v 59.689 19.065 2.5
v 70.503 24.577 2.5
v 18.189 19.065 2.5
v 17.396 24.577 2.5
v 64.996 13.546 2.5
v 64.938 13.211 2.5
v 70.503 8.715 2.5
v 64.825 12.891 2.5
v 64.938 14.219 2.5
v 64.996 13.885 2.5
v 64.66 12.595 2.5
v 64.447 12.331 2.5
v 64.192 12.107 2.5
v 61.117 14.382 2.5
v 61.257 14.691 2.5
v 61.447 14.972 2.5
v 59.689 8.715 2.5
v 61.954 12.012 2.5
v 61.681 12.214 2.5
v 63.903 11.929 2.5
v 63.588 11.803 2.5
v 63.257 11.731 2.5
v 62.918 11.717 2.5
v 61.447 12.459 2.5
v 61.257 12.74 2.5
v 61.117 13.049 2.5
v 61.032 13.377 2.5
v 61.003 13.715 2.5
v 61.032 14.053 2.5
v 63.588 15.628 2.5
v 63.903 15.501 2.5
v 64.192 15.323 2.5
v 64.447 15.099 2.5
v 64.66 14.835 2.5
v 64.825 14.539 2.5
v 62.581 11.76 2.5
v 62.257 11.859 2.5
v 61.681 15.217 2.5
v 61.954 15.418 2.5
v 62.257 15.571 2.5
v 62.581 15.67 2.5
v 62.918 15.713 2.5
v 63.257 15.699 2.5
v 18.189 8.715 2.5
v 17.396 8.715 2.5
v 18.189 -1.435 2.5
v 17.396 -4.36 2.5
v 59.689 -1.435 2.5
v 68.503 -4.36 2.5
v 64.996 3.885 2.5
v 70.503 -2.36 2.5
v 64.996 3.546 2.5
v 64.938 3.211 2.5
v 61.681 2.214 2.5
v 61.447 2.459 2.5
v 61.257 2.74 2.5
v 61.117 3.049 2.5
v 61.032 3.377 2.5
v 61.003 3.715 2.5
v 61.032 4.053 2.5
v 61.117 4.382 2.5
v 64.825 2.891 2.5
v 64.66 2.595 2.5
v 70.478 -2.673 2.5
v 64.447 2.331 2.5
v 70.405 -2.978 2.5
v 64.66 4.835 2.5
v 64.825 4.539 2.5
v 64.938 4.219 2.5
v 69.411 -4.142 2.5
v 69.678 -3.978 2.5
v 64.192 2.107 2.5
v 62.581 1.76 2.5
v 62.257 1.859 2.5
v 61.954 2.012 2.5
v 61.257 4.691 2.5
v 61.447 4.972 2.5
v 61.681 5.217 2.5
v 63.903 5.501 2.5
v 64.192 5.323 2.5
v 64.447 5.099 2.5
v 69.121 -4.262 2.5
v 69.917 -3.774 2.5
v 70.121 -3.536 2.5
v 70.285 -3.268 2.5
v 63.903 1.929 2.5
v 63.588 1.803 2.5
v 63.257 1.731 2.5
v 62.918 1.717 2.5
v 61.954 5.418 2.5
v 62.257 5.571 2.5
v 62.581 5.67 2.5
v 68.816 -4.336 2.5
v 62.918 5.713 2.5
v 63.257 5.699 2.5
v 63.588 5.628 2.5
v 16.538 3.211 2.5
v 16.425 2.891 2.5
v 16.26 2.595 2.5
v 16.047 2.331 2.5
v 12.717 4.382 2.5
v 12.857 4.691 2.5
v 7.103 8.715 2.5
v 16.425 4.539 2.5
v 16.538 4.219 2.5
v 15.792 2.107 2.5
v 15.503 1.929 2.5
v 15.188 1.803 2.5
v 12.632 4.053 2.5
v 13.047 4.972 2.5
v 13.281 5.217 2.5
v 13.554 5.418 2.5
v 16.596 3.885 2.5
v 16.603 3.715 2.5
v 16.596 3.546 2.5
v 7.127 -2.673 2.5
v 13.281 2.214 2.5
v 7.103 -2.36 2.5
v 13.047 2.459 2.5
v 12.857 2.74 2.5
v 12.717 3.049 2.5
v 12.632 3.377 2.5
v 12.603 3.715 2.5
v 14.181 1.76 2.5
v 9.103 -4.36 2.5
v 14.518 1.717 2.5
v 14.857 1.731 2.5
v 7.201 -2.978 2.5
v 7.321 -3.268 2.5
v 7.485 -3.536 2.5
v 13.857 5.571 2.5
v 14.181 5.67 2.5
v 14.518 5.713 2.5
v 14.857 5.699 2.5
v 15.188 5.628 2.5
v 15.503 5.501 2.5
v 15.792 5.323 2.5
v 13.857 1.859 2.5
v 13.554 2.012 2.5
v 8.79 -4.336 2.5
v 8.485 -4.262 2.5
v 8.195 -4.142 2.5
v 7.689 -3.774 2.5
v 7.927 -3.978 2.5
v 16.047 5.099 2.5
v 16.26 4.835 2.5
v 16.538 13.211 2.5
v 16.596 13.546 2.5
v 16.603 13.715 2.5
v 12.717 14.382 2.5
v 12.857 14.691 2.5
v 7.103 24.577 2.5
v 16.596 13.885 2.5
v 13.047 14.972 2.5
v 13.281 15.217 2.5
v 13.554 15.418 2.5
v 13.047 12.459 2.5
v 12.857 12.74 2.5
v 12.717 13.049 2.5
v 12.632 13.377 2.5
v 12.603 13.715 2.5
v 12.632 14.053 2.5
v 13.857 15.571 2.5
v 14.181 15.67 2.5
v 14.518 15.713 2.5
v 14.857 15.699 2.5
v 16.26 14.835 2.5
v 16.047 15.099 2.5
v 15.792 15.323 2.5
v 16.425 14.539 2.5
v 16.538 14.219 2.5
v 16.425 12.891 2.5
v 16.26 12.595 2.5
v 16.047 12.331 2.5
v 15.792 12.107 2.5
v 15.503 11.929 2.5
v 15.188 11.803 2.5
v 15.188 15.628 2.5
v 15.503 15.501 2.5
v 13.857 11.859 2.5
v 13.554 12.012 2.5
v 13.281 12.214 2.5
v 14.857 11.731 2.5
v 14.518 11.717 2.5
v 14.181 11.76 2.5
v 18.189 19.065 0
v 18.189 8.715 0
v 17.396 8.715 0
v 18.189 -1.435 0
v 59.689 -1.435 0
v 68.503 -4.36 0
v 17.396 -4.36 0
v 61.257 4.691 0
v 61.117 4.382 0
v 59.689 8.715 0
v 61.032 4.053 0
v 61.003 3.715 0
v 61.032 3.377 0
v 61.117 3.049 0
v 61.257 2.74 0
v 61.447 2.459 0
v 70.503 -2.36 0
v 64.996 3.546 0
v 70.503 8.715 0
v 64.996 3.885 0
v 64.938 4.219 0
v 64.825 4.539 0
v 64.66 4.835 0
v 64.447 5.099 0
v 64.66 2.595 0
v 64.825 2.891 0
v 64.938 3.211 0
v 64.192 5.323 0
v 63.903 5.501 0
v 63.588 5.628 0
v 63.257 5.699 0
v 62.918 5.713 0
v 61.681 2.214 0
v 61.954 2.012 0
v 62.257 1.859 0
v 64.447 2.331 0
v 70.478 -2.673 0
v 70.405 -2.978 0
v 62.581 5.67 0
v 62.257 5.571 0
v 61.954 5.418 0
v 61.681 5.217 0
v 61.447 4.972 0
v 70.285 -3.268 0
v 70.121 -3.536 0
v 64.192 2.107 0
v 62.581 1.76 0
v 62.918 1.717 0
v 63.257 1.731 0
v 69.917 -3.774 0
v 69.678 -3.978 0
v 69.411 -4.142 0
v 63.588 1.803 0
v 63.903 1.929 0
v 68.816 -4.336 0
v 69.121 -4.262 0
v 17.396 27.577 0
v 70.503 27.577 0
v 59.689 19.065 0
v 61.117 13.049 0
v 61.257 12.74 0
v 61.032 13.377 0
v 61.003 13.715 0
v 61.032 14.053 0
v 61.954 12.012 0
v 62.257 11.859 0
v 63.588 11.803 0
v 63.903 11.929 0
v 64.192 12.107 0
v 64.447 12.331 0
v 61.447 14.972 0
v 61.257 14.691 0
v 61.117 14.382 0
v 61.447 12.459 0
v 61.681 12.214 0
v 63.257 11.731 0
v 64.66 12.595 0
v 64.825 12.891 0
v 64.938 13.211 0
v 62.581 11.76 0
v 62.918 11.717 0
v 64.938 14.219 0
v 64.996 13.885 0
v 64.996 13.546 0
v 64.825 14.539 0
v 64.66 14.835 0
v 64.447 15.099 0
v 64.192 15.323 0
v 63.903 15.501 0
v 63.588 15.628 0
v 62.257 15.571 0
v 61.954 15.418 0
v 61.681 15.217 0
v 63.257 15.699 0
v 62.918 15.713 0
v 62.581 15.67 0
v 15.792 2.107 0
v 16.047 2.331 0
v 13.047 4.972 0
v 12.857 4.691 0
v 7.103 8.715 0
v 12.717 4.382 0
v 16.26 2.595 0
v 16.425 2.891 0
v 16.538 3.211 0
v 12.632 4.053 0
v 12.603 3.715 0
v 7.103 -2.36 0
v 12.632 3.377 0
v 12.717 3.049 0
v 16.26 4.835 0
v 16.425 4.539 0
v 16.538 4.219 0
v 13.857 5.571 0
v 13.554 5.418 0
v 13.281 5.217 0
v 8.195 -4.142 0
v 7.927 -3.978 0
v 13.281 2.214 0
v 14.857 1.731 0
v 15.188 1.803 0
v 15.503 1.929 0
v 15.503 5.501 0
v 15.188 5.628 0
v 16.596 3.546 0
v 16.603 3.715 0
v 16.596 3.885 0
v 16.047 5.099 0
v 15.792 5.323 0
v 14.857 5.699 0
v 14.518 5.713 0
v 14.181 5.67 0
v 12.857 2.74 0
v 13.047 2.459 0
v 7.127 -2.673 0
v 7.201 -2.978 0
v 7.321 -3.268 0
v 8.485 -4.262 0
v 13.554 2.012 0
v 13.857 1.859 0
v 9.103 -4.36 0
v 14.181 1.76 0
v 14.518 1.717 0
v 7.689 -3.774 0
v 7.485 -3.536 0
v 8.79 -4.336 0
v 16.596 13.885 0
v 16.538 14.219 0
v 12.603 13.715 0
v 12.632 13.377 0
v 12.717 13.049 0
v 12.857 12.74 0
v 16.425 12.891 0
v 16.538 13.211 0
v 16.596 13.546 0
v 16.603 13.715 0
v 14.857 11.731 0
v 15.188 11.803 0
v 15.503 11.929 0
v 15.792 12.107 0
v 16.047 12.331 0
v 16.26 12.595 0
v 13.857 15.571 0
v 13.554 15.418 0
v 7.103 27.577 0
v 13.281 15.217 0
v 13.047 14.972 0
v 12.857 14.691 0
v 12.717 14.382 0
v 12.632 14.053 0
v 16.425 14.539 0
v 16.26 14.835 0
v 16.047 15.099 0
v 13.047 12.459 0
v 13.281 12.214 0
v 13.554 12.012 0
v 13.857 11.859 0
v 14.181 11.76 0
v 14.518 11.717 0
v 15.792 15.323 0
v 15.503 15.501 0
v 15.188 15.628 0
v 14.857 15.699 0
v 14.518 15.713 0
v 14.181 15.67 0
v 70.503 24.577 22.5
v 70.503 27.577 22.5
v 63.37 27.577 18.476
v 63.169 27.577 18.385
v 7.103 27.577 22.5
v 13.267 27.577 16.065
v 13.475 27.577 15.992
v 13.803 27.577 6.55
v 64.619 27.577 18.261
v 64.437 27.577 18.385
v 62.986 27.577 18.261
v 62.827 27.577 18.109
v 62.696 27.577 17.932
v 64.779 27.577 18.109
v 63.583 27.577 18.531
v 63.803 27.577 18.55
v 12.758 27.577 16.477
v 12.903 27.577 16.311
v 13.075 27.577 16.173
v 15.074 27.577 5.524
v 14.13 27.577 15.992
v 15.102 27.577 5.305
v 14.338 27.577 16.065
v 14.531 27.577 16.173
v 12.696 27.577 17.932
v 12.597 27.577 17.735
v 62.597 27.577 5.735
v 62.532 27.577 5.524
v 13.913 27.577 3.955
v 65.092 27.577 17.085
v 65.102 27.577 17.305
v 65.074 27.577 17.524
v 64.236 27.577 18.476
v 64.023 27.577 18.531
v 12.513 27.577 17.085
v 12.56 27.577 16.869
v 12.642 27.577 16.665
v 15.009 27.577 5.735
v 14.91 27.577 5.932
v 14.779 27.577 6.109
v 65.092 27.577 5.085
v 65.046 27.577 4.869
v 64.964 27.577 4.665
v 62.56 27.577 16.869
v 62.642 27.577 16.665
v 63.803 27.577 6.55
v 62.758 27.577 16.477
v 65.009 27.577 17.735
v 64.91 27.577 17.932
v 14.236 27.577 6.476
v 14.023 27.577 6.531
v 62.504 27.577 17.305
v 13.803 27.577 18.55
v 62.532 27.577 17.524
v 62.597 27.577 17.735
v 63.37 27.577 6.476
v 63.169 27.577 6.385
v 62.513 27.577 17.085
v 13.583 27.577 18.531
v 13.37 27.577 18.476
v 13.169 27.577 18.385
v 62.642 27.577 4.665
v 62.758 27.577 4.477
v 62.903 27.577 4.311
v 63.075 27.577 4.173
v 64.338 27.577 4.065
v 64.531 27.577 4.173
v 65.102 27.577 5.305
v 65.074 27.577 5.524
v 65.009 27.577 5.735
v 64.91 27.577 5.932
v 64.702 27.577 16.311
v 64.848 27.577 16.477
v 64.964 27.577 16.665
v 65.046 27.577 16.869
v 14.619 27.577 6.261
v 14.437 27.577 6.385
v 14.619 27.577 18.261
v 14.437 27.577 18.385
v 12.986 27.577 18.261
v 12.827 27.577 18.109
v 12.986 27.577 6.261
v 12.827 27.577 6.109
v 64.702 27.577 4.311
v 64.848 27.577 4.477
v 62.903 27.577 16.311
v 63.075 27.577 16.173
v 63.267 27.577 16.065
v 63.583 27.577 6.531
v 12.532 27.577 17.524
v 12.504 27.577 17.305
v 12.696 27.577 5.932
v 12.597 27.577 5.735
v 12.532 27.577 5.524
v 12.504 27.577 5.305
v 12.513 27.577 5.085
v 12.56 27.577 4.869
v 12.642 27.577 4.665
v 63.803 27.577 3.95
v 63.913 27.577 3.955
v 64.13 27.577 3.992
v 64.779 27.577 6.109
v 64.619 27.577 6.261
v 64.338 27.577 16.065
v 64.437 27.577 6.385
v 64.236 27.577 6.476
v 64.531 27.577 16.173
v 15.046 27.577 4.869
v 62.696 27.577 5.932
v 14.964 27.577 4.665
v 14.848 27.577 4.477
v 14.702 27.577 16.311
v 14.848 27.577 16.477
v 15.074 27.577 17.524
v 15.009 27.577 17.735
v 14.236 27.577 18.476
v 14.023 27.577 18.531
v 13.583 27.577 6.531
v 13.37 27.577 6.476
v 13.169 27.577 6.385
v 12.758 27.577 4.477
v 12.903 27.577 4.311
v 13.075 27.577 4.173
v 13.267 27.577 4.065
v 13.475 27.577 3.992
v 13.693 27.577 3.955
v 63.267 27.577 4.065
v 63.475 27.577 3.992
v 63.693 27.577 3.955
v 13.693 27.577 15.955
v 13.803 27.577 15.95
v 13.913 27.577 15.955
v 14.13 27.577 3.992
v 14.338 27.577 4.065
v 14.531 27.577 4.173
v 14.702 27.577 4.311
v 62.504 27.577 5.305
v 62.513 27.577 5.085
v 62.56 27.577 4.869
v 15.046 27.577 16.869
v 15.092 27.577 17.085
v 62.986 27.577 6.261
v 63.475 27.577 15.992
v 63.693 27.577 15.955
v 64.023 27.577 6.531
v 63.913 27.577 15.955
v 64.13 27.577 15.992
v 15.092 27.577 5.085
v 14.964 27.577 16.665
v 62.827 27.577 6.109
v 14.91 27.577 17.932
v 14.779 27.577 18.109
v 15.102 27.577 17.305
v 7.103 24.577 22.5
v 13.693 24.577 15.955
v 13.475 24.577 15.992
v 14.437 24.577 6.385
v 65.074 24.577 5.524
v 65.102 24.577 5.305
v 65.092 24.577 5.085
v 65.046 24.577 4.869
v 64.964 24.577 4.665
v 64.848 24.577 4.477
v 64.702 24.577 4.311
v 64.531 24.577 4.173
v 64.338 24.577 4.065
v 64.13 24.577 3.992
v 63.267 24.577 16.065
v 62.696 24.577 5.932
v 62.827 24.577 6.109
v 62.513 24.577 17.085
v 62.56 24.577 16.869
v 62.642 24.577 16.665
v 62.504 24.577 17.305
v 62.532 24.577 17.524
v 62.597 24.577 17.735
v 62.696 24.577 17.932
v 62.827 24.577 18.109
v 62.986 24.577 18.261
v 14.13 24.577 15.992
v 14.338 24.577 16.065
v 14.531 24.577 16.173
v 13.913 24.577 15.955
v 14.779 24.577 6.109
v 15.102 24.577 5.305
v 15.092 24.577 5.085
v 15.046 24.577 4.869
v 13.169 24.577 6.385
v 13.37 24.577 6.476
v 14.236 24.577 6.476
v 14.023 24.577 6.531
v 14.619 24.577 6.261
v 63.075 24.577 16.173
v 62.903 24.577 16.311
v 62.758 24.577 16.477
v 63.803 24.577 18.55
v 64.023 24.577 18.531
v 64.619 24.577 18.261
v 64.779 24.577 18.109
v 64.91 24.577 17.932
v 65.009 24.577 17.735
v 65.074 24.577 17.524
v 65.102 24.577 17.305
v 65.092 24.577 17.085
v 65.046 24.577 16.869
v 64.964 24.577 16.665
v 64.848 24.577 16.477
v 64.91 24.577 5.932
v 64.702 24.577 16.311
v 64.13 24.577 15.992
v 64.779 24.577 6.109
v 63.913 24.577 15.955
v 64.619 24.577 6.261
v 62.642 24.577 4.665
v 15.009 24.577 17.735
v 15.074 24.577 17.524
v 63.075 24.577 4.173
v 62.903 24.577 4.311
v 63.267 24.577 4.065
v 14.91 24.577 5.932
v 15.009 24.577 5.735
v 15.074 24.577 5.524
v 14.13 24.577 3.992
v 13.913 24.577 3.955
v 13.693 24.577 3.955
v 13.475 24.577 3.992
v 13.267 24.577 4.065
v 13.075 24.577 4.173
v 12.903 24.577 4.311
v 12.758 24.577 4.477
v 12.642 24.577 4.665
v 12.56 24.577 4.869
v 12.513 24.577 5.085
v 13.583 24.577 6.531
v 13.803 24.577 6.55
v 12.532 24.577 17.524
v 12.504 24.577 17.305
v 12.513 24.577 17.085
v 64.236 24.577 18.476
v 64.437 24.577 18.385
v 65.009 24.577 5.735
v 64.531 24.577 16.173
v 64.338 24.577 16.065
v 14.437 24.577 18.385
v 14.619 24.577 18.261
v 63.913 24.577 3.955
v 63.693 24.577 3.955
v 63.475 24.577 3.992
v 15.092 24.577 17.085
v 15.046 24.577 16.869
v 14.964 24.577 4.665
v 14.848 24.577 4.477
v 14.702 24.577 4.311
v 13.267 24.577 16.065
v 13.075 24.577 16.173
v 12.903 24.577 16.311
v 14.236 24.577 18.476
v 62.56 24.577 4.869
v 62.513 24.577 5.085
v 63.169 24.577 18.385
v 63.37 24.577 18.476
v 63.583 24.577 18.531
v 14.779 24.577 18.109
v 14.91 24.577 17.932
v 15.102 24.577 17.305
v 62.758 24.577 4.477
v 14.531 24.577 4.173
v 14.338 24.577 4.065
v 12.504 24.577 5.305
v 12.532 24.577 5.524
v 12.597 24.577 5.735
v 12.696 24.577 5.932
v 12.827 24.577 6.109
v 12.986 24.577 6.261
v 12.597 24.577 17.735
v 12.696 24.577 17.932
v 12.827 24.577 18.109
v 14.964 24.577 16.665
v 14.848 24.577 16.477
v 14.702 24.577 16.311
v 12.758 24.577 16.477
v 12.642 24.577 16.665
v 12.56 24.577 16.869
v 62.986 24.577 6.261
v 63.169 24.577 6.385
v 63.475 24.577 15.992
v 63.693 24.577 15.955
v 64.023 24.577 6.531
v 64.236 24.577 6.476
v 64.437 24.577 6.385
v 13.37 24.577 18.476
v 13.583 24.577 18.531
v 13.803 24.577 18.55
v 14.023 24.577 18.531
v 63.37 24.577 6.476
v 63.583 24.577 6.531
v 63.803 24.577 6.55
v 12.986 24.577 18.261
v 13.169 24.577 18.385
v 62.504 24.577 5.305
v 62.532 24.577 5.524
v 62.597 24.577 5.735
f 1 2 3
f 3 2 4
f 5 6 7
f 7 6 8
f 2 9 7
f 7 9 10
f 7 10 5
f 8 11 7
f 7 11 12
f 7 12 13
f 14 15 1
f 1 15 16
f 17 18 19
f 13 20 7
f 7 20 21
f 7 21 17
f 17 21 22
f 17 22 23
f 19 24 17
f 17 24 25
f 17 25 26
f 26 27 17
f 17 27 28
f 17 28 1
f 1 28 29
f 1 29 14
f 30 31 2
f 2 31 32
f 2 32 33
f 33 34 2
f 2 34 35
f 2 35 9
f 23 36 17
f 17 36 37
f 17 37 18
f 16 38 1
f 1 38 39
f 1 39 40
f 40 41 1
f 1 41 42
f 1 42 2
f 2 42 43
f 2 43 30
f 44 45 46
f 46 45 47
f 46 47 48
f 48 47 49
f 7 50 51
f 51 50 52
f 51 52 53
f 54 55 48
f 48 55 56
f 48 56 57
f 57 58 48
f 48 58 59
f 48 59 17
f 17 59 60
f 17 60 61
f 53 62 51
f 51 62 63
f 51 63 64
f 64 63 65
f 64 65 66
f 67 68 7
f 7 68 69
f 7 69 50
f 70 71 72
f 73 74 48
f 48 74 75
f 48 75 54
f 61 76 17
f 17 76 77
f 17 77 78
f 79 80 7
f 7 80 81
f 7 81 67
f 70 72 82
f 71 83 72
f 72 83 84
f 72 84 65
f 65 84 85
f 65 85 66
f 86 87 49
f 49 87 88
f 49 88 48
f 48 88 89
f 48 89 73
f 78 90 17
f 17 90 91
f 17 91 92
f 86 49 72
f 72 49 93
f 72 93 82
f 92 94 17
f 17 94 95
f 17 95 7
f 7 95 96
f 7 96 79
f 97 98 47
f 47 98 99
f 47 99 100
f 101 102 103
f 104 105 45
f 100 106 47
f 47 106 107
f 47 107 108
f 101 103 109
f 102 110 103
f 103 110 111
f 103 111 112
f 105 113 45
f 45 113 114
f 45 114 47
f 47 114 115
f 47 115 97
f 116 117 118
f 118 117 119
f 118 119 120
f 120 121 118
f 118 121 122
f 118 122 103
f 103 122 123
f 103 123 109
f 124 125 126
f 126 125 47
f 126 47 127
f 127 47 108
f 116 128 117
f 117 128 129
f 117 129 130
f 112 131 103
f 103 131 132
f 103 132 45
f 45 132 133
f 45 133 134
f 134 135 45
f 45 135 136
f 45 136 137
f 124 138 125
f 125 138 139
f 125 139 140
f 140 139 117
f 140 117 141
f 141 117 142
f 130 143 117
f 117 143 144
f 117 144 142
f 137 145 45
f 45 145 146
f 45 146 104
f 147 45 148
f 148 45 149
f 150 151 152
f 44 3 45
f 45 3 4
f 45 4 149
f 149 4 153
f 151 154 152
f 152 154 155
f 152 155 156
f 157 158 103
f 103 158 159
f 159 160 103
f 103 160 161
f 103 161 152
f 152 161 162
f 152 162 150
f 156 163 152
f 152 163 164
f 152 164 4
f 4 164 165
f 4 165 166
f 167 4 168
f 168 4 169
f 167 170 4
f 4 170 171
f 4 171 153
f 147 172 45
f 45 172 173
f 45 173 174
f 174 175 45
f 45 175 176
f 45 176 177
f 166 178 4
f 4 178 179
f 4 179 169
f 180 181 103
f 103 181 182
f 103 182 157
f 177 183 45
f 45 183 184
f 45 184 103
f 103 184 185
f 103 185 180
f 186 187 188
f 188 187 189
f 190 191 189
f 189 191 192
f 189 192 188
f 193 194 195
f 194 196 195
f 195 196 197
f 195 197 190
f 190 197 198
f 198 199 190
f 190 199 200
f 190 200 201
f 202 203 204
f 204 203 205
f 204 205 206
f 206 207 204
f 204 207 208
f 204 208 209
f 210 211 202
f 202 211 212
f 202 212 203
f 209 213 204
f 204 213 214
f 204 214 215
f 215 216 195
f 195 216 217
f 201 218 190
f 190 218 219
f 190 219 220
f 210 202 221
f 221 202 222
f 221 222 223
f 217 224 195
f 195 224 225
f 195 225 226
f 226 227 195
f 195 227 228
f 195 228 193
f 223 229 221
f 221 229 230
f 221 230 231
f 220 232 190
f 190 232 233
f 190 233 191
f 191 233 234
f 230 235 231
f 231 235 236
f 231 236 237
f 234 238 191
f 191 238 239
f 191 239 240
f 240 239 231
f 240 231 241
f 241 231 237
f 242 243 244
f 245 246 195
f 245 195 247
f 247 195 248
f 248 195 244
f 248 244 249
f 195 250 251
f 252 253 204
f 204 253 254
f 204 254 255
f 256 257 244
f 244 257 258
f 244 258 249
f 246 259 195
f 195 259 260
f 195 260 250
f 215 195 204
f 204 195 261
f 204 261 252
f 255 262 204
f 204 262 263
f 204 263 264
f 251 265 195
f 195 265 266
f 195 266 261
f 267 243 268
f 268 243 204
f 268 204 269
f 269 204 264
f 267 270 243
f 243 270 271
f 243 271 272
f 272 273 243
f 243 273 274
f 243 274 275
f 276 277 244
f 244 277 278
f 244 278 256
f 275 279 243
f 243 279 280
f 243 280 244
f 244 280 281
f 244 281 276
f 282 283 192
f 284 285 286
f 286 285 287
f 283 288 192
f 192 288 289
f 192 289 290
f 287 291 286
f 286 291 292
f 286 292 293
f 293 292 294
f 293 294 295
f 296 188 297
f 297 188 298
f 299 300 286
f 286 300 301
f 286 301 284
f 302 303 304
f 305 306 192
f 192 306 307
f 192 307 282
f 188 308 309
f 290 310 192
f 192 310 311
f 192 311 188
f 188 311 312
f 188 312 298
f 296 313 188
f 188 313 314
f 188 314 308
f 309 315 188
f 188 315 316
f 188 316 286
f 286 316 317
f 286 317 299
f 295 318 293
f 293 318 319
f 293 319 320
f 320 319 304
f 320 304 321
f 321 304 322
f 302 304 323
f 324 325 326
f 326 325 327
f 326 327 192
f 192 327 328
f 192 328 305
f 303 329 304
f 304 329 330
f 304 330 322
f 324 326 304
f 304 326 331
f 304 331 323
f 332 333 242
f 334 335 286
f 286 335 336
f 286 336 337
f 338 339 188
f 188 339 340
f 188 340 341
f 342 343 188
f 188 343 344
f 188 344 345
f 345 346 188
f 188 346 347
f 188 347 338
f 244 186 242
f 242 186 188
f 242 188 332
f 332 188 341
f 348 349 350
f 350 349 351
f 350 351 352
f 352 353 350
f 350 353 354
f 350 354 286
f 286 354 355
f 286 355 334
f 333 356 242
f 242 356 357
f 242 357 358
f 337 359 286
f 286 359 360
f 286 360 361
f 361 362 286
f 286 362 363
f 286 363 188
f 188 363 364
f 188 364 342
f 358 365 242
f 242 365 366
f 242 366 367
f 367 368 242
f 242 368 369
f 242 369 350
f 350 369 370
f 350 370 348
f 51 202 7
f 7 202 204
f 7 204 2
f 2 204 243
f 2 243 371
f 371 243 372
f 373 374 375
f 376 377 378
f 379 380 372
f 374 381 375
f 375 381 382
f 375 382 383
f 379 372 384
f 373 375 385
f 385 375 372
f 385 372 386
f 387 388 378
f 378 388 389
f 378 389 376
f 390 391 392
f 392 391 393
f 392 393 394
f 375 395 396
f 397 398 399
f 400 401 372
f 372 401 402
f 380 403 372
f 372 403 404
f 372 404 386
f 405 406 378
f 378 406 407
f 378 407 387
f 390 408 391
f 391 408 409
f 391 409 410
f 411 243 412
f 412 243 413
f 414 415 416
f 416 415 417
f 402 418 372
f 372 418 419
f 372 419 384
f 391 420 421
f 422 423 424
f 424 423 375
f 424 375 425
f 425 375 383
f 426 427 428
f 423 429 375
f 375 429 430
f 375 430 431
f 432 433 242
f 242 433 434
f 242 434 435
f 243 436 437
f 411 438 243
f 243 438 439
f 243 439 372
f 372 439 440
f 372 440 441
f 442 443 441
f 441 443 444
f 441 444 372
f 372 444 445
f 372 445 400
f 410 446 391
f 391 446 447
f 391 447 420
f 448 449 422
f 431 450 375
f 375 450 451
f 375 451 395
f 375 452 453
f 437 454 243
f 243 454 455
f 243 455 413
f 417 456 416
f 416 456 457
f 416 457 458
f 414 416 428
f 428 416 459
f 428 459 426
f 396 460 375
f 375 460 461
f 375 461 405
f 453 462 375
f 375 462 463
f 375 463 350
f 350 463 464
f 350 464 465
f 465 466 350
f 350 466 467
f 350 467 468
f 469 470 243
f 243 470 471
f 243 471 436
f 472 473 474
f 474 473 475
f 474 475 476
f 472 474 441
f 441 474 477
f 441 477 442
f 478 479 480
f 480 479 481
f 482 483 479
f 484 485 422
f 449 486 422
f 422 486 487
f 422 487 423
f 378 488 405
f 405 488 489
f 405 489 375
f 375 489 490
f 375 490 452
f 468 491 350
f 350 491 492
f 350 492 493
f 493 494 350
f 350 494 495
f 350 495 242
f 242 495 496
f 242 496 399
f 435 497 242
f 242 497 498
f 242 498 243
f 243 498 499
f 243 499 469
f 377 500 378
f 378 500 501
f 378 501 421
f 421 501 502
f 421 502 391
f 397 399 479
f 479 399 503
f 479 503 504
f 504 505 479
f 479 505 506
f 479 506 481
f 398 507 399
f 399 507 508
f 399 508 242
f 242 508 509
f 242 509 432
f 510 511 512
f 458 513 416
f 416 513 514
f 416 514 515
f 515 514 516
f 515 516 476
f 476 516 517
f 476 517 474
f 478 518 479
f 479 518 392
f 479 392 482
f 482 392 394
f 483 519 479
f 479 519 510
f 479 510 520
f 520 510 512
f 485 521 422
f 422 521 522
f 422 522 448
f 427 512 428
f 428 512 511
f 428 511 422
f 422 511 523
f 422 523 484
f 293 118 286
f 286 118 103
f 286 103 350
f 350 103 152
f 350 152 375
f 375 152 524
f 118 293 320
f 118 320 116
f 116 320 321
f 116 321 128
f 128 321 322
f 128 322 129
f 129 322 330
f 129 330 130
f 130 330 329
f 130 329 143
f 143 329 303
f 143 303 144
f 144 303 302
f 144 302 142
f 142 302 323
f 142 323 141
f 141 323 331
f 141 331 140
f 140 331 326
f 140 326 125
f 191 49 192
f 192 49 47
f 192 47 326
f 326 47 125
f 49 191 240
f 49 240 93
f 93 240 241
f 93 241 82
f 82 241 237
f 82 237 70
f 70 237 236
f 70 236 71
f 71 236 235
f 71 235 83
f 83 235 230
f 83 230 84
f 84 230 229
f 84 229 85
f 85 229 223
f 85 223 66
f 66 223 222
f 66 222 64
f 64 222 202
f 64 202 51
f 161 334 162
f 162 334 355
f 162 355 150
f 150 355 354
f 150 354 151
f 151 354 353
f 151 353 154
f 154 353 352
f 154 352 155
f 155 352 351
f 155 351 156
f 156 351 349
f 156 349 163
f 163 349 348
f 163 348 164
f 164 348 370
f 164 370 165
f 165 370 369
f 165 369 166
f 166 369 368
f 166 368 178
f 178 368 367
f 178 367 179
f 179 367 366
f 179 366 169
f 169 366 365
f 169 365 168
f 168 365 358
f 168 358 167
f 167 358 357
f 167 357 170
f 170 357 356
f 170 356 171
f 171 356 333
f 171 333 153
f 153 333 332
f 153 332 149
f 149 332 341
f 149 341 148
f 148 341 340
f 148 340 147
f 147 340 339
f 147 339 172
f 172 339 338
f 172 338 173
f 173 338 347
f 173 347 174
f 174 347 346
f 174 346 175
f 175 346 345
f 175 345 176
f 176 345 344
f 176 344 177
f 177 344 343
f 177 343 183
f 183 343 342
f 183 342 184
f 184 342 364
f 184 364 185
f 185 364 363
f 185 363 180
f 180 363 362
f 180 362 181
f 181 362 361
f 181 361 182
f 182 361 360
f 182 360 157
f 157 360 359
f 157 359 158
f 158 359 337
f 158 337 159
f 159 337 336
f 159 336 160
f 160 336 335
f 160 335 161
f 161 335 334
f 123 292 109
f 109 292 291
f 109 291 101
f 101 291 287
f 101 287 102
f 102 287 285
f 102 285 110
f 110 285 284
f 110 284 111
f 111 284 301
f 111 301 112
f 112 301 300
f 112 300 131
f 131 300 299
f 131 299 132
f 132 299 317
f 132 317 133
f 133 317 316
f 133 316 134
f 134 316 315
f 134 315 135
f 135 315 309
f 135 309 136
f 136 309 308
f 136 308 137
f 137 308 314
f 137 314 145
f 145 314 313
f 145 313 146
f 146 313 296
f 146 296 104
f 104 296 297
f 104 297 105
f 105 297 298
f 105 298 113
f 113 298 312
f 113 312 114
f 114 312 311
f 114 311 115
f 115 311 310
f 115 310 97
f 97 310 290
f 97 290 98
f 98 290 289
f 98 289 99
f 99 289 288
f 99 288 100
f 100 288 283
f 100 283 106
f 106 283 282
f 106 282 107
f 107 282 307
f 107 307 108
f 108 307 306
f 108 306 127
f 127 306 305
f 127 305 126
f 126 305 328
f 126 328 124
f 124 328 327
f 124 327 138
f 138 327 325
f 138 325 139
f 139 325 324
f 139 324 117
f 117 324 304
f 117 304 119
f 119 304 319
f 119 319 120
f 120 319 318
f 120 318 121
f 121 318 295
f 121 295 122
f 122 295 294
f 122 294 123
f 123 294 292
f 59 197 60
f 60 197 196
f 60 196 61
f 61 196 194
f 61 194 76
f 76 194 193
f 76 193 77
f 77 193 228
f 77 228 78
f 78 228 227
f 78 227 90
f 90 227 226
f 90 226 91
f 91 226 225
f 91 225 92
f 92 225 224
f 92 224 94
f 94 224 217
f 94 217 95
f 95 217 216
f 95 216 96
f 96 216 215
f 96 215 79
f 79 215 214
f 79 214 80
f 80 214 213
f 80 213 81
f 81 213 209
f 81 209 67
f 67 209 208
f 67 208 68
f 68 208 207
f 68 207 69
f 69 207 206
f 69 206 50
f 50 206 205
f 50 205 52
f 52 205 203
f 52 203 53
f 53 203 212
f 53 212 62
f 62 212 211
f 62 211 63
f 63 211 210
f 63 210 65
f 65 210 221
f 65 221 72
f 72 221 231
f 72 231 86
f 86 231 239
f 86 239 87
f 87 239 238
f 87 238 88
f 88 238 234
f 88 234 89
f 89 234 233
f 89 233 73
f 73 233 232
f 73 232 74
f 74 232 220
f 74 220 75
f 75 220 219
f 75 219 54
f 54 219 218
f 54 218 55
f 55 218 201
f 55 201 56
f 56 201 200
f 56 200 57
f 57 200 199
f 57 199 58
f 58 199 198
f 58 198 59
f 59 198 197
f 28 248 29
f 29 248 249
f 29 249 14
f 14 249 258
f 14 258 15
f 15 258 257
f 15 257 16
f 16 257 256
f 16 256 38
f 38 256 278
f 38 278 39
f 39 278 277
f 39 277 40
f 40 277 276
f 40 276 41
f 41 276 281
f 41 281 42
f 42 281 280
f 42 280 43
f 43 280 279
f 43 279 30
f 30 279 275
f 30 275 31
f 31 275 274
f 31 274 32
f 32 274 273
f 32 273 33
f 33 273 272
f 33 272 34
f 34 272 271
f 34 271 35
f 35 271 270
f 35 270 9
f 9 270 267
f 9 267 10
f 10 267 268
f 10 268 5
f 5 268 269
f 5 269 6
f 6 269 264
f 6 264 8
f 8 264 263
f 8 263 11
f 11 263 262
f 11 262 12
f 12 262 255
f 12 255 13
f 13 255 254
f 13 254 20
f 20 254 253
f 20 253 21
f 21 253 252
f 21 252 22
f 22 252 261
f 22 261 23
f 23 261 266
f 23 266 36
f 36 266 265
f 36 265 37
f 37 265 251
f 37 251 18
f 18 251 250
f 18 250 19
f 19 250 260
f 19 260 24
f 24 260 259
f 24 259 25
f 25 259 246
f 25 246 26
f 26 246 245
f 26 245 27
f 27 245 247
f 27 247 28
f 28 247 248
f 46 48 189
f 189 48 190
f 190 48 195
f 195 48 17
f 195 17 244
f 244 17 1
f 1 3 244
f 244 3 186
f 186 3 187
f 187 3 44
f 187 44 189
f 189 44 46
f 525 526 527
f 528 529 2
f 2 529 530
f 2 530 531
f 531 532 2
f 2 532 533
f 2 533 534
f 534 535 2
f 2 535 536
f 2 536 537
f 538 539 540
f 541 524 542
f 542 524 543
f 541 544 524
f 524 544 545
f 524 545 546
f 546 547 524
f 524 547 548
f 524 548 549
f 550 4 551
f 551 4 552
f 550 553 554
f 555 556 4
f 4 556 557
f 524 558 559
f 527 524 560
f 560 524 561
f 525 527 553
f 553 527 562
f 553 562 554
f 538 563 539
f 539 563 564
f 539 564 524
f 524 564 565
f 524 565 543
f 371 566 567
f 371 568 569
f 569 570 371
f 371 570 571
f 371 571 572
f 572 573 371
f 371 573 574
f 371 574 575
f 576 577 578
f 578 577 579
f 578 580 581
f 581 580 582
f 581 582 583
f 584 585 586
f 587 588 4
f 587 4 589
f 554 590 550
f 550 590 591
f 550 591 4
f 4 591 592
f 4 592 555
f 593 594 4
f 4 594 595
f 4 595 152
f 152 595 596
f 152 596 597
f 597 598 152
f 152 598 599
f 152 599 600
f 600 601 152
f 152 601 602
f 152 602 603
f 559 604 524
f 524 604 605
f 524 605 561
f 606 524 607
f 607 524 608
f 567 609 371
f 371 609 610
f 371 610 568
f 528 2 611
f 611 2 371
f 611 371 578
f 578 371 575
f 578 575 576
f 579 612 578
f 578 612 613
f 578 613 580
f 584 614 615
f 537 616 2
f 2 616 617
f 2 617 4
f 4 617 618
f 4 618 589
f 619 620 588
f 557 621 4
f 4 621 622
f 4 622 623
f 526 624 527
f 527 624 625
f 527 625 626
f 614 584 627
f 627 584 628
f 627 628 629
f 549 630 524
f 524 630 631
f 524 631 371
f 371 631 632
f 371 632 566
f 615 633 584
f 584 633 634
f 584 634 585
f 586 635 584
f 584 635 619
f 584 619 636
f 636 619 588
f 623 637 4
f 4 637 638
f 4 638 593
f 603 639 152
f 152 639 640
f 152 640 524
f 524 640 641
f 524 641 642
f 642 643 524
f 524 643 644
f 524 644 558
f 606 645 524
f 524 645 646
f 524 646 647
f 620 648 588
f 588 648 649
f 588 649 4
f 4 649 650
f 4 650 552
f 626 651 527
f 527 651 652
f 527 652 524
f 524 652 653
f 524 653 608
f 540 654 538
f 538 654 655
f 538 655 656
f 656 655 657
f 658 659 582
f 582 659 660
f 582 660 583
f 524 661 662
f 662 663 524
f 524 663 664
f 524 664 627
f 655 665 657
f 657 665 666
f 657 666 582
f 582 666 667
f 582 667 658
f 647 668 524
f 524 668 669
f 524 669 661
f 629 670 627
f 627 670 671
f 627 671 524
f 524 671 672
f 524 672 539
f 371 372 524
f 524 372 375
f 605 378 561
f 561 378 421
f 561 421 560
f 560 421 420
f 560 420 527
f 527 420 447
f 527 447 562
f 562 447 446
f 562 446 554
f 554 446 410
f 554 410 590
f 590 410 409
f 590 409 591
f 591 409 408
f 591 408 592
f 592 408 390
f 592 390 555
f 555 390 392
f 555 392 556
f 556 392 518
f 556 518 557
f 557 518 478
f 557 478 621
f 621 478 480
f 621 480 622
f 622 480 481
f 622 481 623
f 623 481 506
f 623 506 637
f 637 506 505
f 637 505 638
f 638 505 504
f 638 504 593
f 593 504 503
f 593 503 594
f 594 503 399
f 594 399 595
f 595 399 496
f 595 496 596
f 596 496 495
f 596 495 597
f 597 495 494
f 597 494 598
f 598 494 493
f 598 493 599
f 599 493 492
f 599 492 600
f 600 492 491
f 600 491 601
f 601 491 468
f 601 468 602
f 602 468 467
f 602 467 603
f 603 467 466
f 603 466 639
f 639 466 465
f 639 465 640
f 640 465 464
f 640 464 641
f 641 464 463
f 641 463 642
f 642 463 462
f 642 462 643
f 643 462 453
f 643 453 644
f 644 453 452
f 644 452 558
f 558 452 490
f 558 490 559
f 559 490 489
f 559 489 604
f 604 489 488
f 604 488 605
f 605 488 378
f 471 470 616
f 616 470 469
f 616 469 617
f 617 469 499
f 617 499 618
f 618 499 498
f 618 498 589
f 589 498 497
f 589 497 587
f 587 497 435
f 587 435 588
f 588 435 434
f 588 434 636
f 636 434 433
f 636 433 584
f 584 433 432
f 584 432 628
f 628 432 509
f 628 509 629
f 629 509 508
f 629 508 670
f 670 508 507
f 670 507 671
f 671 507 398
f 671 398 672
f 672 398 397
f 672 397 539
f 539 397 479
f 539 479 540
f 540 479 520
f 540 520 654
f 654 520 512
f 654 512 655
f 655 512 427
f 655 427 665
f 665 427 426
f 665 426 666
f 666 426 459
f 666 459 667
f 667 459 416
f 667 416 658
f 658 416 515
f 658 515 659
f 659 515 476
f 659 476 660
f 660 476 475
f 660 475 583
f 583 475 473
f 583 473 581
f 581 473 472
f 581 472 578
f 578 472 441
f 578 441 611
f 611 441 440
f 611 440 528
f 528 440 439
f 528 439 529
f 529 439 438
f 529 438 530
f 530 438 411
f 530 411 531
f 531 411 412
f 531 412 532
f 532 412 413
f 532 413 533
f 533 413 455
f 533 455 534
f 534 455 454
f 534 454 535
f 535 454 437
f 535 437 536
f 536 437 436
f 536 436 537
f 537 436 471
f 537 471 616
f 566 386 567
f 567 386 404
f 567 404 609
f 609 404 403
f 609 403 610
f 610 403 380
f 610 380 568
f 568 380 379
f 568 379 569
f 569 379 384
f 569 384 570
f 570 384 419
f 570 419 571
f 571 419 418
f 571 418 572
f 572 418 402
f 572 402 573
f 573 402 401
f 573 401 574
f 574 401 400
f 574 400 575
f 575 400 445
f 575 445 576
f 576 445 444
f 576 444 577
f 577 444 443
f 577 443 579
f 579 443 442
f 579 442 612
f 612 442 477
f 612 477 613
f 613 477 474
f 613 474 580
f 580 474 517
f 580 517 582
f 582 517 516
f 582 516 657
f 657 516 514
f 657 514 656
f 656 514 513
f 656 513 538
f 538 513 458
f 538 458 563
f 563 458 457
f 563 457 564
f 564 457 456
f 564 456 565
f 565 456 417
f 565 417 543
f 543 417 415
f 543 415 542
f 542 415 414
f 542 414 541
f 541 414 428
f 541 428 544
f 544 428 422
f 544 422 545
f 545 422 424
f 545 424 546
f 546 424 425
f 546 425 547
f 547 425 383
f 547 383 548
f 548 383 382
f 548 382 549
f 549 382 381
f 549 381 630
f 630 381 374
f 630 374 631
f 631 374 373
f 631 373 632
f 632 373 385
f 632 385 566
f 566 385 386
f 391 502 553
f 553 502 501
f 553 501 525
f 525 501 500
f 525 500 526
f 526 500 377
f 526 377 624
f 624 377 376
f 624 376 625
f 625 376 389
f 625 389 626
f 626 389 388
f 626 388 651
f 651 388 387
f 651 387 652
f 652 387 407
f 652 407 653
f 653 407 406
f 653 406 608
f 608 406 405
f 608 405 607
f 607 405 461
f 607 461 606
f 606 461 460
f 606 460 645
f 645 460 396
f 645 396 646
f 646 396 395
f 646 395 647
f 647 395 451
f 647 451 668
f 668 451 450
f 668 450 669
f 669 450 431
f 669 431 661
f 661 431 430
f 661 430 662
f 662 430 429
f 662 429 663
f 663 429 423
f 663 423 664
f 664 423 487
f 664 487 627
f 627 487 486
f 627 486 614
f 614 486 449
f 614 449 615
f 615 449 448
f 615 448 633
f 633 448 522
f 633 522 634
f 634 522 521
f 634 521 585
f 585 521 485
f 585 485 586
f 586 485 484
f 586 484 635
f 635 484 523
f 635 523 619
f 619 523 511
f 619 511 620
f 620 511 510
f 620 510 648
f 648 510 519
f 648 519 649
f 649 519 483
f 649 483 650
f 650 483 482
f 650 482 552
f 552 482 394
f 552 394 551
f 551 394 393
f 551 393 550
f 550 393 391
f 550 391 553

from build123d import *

# Parameters (mm, degrees)
SKETCH_1_R          = 2
SKETCH_1_R_2        = 2.000000001
SKETCH_1_W          = 41.5
SKETCH_1_H          = 20.5
EXTRUDE_1_DEPTH     = 2.5
SKETCH_2_W          = 63.400042917
SKETCH_2_H          = 3
EXTRUDE_2_DEPTH     = 20
SKETCH_3_R          = 1.3
CUT_EXTRUDE_1_DEPTH = 3


with BuildPart() as part:
    # 草图1 → 凸台-拉伸1 (new body)
    with BuildSketch(Plane.XY):
        with BuildLine():
            Line((9.102779232, -4.360253516), (68.502822149, -4.360253516))
            ThreePointArc((68.502822149, -4.360253516), (69.917035712, -3.774467079), (70.502822149, -2.360253516))
            Line((70.502822149, -2.360253516), (70.502822149, 27.577468612))
            Line((70.502822149, 27.577468612), (7.102779232, 27.577468612))
            Line((7.102779232, 27.577468612), (7.102779232, -2.360253516))
            ThreePointArc((7.102779232, -2.360253516), (7.688565669, -3.774467079), (9.102779232, -4.360253516))
        make_face()
        with Locations((14.602780347, 13.71523364)):
            Circle(SKETCH_1_R, mode=Mode.SUBTRACT)
        with Locations((14.602779232, 3.71523364)):
            Circle(SKETCH_1_R, mode=Mode.SUBTRACT)
        with Locations((63.002822149, 3.71523364)):
            Circle(SKETCH_1_R_2, mode=Mode.SUBTRACT)
        with Locations((63.002821034, 13.71523364)):
            Circle(SKETCH_1_R, mode=Mode.SUBTRACT)
        with Locations((38.938588543, 8.81523364)):
            Rectangle(SKETCH_1_W, SKETCH_1_H, mode=Mode.SUBTRACT)
    extrude(amount=EXTRUDE_1_DEPTH)

    # 草图2 → 凸台-拉伸2 (add)
    with BuildSketch(Plane.XY.offset(2.5)):
        with Locations((38.802800691, 26.077468612)):
            Rectangle(SKETCH_2_W, SKETCH_2_H)
    extrude(amount=EXTRUDE_2_DEPTH)

    # 草图3 → 切除-拉伸1 (cut)
    with BuildSketch(Plane(origin=(0, 27.577468612, 0), x_dir=(1, 0, 0), z_dir=(0, 1, 0))):
        with Locations((13.80280069, -5.25)):
            Circle(SKETCH_3_R)
        with Locations((63.80280069, -5.25)):
            Circle(SKETCH_3_R)
        with Locations((63.80280069, -17.25)):
            Circle(SKETCH_3_R)
        with Locations((13.80280069, -17.25)):
            Circle(SKETCH_3_R)
    extrude(amount=-CUT_EXTRUDE_1_DEPTH, mode=Mode.SUBTRACT)


solid = part.part
